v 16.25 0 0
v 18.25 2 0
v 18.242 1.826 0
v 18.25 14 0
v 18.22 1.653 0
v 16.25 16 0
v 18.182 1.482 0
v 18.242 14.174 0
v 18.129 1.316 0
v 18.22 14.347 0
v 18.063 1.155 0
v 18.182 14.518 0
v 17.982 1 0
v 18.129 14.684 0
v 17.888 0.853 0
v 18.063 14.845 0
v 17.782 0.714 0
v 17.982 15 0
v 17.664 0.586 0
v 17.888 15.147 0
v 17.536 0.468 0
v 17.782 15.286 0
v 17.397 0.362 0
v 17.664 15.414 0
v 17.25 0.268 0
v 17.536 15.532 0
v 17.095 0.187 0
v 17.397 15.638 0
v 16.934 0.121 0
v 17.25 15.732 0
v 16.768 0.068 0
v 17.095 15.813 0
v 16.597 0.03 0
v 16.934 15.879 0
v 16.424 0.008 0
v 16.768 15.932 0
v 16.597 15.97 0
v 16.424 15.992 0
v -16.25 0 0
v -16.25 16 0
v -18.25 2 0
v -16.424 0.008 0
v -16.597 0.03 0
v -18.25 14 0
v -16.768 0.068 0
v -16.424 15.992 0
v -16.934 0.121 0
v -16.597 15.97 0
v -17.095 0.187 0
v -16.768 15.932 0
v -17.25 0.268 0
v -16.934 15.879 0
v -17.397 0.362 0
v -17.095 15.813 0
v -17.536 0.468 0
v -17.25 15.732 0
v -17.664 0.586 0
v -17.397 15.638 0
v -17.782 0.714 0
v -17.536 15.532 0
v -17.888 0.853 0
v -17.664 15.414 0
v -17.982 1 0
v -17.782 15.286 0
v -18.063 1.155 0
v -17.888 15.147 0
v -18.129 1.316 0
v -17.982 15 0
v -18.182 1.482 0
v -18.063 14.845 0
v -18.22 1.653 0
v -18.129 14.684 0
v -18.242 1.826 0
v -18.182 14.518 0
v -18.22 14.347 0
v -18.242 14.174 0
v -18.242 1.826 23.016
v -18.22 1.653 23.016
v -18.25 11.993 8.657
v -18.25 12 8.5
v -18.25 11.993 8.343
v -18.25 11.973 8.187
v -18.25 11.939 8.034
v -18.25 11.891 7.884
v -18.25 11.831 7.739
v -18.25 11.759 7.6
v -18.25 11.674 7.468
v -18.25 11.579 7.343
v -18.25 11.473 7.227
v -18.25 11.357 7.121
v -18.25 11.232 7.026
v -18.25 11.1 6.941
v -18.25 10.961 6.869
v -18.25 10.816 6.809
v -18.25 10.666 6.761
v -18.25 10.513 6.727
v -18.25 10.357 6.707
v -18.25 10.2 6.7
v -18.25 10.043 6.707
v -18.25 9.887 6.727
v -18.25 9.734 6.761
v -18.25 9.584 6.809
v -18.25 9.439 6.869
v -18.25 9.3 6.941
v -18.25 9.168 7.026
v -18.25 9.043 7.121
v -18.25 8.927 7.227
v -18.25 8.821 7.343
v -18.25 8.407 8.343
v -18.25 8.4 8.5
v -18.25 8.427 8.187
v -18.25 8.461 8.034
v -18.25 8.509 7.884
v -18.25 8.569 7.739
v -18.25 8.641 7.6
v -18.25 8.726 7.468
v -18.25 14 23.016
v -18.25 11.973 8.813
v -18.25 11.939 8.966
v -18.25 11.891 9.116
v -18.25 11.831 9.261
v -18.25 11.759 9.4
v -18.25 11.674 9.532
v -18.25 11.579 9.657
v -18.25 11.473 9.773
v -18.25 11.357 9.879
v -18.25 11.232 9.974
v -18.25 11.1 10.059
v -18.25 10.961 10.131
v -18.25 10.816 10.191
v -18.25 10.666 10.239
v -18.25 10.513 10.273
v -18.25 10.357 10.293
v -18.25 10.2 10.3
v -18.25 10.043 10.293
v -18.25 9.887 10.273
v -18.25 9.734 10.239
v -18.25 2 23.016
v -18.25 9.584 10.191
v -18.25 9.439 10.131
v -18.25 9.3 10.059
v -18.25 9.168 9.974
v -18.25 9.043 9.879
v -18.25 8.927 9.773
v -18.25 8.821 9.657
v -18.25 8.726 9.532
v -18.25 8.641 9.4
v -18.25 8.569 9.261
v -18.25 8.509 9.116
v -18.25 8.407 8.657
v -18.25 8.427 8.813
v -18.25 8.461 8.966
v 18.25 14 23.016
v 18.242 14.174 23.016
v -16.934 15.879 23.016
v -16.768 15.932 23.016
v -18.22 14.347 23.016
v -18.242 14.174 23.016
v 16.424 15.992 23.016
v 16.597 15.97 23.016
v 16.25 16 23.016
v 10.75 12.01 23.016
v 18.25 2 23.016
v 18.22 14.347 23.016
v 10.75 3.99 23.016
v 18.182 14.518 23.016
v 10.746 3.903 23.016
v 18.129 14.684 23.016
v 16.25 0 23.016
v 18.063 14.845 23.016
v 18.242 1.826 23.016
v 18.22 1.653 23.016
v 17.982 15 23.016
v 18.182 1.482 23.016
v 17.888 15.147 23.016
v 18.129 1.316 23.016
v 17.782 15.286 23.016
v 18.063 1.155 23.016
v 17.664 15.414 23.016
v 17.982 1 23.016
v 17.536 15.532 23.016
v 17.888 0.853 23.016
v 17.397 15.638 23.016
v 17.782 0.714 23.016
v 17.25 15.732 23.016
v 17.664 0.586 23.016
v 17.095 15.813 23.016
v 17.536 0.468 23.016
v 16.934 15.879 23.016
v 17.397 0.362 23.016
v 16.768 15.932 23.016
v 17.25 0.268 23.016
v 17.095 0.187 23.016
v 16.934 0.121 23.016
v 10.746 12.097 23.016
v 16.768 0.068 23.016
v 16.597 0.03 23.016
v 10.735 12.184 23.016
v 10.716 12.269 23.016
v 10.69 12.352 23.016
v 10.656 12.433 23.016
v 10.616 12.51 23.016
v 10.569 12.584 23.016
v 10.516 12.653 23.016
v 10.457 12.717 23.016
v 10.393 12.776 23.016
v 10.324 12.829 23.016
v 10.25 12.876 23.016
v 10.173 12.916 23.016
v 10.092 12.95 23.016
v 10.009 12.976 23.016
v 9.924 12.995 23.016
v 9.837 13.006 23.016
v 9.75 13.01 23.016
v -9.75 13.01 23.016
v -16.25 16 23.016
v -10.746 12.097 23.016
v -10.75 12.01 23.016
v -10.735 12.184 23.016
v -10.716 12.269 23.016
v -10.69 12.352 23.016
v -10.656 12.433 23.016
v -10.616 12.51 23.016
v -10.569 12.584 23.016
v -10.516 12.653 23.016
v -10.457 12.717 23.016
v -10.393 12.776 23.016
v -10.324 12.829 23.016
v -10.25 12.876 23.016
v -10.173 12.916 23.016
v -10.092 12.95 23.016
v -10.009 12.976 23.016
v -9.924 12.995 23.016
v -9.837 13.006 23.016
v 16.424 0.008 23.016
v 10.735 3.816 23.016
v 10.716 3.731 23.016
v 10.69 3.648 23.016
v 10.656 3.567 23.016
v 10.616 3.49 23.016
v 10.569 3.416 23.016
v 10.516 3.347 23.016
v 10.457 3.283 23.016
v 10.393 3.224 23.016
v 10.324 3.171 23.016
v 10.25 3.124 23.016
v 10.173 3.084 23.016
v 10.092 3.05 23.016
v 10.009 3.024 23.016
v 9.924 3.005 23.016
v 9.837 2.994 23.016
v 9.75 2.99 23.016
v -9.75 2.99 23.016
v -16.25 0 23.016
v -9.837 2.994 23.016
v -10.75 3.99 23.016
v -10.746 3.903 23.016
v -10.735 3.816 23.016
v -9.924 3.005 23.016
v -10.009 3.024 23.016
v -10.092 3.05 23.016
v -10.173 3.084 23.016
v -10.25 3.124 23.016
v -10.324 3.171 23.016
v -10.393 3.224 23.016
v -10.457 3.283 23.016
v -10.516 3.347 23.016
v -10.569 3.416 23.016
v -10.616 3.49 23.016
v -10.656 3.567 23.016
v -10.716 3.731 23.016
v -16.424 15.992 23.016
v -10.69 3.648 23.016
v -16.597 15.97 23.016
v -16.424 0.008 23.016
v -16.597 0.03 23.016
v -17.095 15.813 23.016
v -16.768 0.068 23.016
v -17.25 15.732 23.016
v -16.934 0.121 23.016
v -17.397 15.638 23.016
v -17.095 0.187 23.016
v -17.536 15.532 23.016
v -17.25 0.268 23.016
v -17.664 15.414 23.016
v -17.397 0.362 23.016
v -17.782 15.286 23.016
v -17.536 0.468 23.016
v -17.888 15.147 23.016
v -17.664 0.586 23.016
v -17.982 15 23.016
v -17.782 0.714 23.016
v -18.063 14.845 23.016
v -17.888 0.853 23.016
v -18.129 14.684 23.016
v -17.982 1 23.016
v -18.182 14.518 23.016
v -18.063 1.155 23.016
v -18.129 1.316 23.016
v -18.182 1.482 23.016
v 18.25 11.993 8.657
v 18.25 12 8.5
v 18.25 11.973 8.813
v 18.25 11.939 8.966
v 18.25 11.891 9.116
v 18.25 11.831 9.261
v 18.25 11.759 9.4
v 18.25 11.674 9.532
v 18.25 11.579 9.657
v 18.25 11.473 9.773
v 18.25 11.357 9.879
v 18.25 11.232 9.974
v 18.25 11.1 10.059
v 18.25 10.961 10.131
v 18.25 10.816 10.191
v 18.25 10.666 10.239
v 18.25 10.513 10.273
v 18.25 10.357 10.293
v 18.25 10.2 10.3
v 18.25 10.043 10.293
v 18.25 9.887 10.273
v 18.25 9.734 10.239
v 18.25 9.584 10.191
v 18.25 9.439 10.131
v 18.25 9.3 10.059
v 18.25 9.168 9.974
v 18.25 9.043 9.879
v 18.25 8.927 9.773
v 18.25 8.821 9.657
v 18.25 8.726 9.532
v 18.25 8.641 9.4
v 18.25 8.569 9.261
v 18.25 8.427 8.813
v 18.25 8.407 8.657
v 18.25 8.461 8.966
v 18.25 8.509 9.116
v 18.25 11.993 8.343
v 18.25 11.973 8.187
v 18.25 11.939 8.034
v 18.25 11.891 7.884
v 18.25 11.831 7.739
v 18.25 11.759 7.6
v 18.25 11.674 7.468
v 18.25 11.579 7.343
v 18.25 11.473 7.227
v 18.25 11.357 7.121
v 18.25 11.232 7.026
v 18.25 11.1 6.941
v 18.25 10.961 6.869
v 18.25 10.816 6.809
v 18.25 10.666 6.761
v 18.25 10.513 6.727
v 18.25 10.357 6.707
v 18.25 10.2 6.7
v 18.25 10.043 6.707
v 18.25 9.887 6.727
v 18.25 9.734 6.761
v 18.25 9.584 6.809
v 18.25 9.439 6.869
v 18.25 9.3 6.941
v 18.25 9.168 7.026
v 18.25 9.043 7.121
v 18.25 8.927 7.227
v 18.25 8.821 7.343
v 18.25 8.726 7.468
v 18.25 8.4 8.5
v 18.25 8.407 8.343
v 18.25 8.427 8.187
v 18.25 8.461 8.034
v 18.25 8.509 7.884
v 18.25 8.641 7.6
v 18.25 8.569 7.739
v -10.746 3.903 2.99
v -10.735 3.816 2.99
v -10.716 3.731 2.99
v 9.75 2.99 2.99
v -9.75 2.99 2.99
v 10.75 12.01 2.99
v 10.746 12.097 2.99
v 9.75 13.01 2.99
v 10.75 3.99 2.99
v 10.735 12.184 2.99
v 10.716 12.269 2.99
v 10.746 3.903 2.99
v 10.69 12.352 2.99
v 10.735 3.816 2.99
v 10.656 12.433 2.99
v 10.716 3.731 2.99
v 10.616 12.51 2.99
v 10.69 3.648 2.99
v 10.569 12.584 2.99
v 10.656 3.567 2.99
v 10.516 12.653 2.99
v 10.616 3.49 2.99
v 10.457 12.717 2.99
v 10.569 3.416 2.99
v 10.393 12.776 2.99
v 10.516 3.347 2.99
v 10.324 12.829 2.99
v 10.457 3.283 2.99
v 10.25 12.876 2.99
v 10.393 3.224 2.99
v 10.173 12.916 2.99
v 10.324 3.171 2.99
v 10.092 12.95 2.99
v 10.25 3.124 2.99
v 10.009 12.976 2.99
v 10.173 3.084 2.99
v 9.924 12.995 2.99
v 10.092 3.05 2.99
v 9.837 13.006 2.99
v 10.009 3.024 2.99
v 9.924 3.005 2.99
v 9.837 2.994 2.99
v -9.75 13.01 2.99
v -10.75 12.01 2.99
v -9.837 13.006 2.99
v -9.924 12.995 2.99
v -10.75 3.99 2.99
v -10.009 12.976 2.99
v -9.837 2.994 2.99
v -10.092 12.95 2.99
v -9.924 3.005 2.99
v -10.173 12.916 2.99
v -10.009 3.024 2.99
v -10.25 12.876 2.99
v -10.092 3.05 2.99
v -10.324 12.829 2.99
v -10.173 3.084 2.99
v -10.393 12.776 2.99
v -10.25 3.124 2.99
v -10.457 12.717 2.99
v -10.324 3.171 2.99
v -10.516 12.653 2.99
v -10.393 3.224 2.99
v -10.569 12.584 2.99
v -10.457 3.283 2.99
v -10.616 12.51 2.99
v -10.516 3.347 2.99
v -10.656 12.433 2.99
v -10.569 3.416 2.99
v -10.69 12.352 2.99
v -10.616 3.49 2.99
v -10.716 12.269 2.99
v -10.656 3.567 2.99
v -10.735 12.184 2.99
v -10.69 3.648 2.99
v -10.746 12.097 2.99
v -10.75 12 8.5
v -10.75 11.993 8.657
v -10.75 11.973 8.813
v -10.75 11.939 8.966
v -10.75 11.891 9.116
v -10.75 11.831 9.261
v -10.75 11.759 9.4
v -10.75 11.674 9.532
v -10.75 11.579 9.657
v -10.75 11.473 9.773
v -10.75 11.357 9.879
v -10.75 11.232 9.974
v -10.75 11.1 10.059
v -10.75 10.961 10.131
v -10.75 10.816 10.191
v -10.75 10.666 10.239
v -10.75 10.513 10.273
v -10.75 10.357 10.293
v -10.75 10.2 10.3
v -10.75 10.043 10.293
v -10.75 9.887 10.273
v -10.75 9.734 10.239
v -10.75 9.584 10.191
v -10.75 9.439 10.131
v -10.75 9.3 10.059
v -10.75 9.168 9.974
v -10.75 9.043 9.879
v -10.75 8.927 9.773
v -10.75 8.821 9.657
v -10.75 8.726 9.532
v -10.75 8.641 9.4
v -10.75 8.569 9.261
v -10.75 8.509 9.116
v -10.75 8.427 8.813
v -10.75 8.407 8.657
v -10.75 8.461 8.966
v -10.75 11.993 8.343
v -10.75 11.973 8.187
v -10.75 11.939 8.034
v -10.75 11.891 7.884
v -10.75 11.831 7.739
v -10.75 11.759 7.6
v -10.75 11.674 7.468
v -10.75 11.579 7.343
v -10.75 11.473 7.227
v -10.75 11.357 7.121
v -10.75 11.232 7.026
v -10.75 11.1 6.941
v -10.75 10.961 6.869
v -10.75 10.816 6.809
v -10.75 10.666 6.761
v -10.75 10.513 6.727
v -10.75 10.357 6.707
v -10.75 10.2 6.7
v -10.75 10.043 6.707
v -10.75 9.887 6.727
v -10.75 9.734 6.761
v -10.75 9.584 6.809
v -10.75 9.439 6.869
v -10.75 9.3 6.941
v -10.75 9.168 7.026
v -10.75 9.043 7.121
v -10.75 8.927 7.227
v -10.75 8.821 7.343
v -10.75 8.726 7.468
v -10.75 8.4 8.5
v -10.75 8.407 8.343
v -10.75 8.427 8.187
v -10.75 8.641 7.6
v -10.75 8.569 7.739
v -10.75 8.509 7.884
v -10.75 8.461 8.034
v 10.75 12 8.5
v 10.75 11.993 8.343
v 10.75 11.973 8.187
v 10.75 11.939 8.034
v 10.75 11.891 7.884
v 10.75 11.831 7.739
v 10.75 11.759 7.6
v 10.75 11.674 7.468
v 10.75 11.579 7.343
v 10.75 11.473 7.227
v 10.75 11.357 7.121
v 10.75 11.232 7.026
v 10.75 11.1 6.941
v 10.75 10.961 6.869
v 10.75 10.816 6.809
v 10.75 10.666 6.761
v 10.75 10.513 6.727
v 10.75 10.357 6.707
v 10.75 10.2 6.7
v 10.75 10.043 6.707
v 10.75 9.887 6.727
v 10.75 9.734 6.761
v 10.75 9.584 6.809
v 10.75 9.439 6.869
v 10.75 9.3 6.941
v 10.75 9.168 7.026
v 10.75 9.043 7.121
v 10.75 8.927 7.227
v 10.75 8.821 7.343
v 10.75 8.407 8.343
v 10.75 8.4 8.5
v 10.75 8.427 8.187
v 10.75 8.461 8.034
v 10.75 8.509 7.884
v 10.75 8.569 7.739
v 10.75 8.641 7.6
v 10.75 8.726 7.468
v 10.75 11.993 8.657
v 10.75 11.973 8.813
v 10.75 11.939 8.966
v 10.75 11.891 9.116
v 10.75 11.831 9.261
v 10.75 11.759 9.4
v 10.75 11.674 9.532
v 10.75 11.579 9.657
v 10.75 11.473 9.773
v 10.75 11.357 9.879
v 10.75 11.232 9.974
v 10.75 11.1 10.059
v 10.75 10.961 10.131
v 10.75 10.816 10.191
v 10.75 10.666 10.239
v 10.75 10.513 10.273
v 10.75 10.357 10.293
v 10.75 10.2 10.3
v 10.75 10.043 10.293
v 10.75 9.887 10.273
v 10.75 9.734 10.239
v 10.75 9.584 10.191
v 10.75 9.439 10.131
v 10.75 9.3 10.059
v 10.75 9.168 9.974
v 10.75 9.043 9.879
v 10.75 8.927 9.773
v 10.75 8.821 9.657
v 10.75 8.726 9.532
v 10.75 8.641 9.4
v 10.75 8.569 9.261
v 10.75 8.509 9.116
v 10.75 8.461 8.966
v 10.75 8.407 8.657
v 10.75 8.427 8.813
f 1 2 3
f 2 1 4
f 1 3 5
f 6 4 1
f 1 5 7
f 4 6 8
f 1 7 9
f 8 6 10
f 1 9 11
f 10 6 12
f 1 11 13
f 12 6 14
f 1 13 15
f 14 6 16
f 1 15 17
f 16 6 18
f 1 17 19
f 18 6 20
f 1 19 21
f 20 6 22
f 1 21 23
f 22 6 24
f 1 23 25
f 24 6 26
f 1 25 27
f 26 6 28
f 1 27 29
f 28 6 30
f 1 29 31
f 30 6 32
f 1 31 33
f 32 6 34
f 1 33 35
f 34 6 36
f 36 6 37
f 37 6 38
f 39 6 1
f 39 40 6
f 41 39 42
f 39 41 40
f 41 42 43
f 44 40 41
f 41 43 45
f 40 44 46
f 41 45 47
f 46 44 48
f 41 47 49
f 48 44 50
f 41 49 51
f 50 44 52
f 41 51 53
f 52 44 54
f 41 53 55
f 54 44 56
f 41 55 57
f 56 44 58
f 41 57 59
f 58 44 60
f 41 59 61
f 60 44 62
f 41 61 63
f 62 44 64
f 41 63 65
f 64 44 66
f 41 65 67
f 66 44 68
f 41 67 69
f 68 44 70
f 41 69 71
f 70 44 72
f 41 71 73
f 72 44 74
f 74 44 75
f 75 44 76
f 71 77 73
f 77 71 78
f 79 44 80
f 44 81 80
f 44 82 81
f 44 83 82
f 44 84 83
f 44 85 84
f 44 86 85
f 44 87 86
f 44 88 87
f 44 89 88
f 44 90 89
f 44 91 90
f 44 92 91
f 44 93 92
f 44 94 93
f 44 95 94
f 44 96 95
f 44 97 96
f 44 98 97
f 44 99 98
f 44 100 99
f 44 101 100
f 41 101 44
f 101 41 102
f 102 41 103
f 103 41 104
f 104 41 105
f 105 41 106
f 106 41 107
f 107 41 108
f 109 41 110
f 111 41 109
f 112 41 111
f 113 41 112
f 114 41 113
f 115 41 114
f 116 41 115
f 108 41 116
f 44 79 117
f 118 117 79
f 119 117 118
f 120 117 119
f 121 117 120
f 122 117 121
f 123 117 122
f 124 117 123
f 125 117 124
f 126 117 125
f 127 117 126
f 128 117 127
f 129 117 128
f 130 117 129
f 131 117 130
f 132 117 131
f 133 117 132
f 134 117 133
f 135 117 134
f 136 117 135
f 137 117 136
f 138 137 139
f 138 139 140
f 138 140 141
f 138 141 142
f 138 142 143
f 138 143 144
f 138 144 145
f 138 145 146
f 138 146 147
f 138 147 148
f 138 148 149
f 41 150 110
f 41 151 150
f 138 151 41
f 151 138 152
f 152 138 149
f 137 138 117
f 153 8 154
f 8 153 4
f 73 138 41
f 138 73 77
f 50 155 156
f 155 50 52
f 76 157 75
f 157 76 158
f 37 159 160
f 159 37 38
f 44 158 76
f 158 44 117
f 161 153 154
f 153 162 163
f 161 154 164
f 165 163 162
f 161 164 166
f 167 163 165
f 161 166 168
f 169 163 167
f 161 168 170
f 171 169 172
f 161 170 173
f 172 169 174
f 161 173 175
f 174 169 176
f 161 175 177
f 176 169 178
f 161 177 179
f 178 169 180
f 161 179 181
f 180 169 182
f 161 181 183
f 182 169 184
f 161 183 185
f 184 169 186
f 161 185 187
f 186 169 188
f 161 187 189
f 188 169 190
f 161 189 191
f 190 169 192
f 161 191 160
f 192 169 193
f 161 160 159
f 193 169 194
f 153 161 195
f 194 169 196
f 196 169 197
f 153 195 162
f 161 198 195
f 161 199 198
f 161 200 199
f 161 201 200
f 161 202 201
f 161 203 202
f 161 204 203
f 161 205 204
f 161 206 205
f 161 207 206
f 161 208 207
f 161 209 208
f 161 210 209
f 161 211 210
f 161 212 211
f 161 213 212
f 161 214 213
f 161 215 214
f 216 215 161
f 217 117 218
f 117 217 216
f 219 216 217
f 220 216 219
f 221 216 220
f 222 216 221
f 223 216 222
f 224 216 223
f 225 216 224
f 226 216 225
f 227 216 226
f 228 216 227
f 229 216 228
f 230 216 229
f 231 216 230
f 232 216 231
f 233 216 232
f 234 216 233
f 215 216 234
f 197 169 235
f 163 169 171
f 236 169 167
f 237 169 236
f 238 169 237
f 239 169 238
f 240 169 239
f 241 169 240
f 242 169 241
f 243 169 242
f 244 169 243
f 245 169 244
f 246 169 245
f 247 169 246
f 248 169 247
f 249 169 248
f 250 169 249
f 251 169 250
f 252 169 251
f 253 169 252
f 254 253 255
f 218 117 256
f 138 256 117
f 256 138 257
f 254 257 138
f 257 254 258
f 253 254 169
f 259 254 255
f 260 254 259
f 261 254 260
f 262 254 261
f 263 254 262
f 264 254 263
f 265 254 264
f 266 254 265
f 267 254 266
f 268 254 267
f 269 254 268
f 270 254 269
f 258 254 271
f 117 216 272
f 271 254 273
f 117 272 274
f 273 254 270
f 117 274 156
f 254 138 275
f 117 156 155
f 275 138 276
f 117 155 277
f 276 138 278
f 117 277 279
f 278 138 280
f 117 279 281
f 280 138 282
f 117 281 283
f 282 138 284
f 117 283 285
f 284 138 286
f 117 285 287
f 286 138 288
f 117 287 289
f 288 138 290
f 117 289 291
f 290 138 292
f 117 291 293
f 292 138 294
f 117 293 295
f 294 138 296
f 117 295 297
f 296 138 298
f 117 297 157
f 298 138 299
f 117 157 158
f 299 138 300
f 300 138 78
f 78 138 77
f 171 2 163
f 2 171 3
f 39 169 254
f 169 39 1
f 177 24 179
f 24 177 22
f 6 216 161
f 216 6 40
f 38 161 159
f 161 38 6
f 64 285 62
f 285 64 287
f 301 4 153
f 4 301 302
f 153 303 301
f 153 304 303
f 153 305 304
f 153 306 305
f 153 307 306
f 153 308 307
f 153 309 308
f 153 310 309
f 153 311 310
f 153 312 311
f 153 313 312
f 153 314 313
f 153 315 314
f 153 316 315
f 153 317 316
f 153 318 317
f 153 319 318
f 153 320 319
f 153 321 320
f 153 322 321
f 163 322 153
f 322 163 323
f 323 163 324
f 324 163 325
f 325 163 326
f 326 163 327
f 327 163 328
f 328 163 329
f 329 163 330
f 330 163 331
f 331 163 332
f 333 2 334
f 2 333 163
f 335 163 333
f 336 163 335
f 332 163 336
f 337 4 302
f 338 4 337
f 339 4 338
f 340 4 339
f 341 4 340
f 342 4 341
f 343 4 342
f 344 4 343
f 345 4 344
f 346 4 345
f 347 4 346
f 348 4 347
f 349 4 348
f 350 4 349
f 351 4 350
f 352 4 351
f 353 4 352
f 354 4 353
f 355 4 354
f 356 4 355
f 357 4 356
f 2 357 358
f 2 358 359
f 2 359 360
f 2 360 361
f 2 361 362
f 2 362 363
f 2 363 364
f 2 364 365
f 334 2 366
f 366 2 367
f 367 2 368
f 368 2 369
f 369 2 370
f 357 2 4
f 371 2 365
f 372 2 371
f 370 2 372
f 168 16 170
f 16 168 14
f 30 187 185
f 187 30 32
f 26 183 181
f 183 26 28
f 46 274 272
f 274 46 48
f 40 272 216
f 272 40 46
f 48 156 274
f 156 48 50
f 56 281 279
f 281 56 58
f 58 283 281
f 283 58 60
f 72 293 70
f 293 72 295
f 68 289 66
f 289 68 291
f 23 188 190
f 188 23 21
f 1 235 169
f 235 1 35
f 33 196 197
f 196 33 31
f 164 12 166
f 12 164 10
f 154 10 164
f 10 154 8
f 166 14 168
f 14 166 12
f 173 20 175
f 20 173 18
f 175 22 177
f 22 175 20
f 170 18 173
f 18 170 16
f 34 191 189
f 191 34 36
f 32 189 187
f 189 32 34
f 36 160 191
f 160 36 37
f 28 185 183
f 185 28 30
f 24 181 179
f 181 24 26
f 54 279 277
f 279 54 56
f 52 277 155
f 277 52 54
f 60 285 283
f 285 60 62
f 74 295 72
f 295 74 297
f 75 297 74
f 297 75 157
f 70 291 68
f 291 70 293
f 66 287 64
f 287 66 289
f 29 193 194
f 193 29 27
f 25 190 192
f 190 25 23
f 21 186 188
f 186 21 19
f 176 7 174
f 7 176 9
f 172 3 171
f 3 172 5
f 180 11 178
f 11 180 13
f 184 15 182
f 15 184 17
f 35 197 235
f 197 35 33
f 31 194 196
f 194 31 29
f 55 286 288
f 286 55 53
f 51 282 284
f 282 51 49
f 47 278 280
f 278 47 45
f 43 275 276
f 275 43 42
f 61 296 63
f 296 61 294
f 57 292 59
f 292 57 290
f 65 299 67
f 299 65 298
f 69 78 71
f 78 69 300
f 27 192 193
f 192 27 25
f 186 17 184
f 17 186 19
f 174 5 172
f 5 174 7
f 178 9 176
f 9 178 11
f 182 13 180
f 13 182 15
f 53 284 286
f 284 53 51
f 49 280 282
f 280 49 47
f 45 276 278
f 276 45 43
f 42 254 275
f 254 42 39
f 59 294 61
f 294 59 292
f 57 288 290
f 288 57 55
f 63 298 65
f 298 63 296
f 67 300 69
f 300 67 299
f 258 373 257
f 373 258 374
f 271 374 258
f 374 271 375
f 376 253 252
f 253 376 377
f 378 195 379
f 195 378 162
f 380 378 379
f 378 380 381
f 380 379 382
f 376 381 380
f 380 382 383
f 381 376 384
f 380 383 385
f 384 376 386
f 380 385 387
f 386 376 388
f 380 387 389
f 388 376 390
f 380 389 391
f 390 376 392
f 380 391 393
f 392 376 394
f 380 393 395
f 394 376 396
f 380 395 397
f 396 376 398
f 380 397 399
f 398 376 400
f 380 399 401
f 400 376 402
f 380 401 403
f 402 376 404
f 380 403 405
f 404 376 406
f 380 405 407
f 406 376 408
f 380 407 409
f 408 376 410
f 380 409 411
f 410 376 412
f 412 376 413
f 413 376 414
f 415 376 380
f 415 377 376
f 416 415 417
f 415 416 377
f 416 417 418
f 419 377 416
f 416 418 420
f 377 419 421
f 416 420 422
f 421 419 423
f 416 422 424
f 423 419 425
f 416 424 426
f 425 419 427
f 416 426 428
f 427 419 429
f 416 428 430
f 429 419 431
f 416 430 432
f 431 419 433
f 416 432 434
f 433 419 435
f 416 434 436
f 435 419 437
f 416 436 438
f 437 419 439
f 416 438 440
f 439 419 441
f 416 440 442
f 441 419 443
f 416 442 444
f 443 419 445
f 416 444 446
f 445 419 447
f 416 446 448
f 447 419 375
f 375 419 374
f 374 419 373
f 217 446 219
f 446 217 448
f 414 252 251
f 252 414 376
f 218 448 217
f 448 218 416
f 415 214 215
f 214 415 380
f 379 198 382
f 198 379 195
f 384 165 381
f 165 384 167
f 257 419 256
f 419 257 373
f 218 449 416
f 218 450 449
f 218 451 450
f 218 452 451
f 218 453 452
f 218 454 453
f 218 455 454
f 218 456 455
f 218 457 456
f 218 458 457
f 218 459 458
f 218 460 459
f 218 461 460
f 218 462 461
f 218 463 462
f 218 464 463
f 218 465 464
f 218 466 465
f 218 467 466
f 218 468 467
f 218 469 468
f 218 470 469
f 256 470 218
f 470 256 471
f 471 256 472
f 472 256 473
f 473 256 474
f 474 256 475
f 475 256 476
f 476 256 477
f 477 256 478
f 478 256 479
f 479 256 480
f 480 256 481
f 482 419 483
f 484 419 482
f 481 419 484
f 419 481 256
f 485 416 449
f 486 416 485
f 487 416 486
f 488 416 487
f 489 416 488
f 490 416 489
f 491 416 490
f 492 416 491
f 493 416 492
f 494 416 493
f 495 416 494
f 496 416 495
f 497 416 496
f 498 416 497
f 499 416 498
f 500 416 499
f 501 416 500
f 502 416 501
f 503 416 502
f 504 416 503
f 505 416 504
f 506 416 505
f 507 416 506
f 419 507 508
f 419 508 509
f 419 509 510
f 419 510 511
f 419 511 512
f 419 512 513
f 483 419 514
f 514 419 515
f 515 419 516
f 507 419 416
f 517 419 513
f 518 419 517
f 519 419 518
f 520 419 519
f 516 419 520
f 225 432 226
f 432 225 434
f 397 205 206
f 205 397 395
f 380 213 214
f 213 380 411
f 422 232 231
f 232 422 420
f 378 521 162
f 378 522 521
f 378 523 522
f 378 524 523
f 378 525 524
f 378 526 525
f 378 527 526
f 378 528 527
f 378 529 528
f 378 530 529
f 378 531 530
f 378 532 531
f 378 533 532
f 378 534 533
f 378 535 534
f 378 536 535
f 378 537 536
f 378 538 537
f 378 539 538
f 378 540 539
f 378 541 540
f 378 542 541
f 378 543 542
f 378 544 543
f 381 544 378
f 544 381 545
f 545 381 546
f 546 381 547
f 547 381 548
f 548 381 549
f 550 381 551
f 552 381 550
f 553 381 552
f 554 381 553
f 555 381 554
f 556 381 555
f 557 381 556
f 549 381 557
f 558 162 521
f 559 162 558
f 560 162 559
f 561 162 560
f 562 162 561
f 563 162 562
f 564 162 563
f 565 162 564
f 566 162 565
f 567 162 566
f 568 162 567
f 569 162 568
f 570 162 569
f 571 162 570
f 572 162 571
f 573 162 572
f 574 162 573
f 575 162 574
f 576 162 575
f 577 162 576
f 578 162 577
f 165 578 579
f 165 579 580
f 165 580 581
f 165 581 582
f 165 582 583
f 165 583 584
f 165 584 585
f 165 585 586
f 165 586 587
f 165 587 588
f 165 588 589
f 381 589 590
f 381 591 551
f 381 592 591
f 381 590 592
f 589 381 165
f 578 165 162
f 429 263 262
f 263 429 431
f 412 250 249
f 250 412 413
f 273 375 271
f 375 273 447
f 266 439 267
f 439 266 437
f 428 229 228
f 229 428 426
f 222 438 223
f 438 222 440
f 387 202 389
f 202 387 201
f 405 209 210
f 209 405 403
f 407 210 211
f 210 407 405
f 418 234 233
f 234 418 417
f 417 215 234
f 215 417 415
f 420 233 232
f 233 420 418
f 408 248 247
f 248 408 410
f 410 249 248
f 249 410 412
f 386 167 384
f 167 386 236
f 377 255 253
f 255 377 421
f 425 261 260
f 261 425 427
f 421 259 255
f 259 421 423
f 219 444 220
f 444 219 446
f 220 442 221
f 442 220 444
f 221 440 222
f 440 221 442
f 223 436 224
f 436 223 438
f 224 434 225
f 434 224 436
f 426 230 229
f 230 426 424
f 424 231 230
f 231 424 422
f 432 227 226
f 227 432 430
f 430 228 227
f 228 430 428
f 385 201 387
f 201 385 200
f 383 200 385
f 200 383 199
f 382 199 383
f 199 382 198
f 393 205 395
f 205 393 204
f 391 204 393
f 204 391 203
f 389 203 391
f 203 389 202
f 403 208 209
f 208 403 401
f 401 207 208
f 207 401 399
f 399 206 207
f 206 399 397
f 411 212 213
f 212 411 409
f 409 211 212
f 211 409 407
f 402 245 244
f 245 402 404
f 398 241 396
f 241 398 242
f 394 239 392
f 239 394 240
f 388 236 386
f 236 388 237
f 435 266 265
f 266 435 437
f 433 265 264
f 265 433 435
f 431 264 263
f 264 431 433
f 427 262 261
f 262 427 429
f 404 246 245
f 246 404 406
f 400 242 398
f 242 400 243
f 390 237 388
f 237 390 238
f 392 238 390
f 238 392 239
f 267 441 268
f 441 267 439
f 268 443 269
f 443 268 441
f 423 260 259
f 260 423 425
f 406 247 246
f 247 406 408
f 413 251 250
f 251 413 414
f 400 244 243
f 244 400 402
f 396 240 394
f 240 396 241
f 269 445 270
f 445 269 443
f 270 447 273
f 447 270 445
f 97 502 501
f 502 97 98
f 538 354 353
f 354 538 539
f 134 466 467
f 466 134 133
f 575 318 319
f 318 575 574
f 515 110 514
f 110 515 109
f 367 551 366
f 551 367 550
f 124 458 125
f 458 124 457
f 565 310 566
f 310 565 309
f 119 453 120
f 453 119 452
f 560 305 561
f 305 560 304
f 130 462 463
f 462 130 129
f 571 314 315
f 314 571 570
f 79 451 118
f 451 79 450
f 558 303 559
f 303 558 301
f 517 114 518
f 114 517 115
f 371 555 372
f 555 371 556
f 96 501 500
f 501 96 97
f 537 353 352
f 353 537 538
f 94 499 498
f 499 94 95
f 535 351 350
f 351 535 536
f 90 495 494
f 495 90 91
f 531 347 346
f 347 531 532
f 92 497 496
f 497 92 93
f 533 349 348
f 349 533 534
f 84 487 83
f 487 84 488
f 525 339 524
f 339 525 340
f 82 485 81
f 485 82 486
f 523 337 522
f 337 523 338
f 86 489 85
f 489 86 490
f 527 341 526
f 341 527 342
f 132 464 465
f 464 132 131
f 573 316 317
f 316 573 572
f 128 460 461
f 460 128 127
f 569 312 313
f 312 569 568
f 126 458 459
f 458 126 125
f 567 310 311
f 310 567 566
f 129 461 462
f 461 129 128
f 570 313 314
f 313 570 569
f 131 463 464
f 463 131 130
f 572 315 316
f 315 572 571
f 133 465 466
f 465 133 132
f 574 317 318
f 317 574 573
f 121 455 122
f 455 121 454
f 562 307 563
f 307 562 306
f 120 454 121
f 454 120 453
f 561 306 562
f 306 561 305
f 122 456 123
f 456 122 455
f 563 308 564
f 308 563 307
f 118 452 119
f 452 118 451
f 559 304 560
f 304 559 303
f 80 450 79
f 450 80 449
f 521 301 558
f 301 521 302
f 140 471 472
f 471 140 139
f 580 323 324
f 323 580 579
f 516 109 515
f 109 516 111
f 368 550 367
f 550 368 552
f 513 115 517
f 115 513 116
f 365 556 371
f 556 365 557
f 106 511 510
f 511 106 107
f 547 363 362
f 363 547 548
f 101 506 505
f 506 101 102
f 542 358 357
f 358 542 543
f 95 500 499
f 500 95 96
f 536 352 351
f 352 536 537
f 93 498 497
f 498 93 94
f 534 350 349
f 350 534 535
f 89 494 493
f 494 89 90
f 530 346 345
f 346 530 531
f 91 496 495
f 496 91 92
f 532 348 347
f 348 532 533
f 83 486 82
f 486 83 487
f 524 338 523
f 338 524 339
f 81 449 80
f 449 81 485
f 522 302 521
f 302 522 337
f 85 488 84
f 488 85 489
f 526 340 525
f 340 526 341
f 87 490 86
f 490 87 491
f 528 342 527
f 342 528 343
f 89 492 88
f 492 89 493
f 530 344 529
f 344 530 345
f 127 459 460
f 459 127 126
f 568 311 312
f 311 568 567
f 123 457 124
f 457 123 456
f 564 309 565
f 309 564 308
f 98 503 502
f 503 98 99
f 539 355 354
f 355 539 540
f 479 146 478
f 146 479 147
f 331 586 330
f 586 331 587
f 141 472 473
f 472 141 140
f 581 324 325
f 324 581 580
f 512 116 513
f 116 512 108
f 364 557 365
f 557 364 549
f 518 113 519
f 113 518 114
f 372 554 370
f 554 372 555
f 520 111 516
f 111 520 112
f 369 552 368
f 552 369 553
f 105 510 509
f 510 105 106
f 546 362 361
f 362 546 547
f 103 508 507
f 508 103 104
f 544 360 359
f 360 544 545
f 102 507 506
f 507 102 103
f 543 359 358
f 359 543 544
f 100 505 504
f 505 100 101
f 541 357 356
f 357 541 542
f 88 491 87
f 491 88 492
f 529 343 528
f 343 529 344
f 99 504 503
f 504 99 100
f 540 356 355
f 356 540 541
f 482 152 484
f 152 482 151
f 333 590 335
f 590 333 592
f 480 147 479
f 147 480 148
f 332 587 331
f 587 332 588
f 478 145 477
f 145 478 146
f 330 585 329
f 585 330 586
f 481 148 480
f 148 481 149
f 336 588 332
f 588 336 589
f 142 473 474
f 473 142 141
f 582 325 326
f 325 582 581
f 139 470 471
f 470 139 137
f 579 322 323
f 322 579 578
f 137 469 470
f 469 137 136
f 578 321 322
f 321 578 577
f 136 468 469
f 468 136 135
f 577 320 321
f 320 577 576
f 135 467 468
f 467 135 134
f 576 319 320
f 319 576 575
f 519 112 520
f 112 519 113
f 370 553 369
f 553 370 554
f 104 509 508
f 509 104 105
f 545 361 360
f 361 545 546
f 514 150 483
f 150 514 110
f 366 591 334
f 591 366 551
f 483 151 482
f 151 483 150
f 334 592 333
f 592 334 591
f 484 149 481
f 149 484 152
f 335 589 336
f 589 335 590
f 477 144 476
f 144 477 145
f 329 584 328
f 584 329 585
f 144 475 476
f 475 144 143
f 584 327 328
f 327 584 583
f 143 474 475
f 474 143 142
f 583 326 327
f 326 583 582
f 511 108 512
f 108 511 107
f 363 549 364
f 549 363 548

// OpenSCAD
// file: inner_latch_simplified.scad
// Simplified fallback replacement for the W11457841 inner spring-loaded latch insert
// Intended to reuse the existing round carrier and, if possible, the original spring
// Units: millimeters

include <common_params.scad>;

render_variant = "simplified_nominal"; // simplified_nominal, simplified_test_fit, reinforced_simplified, installed_mockup
test_fit_mode = false;
reinforced_mode = false;
mockup_mode = false;

latch_body_width = 19.3;
latch_body_height = 27.8;
latch_body_depth = 8.8;
engagement_face_width = 19.3;
engagement_face_depth = 5.1;
top_hook_width = 8.4;
top_hook_depth = 2.9;
left_feature_width = 7.6;
right_feature_width = 1.9;
spring_contact_width = 3.4;
spring_contact_depth = 2.3;
guide_rail_width = 2.1;
guide_rail_height = 5.3;
pivot_or_capture_diameter = 3.1;
fit_adjustment = 0.0;
reinforcement_thickness = 1.5;
clearance_to_carrier = 0.15;
test_fit_reduction = 0.18;
break_plane_reference = 13.8;
carrier_reference_width = 28.1;

pivot_center_z = 5.4;
pivot_center_y = 6.2;
body_front_y = 0.0;
body_back_y = latch_body_depth;
tip_step_height = 3.2;
tip_relief_depth = 2.4;
upper_core_width = carrier_reference_width - left_feature_width - right_feature_width;

function carrier_adj(test_fit = false) = test_fit ? test_fit_reduction : 0;
function clamp_pos(value, minimum = 0.1) = value < minimum ? minimum : value;

module simplified_insert(test_fit = false, reinforced = false) {
    adj = carrier_adj(test_fit) + fit_adjustment;
    rail_height = clamp_pos(guide_rail_height - adj);
    rail_width = clamp_pos(guide_rail_width - adj / 2);
    pivot_d = clamp_pos(pivot_or_capture_diameter - adj);
    span = clamp_pos(carrier_reference_width - adj);
    upper_width = clamp_pos(upper_core_width - adj / 2);

    difference() {
        union() {
            body_blank(upper_width = upper_width);
            capture_bar(span = span, pivot_d = pivot_d);
            top_hook(upper_width = upper_width, adj = adj);
            asymmetrical_features(upper_width = upper_width);
            spring_tab(adj = adj);
            guide_rails(upper_width = upper_width, rail_width = rail_width, rail_height = rail_height);

            if (reinforced)
                reinforcement_web();
        }

        arm_reliefs();
        tip_center_relief();
        root_clearance();
    }
}

module body_blank(upper_width = 18.6) {
    hull() {
        translate([0, latch_body_depth / 2, 9.2])
            rounded_block([upper_width, latch_body_depth, 8.2], r = 1.4, center = true);

        translate([0, latch_body_depth / 2 - 0.4, 18.0])
            rounded_block([latch_body_width - 0.8, latch_body_depth - 0.6, 10.2], r = 1.2, center = true);

        translate([0, engagement_face_depth / 2 + 0.8, latch_body_height - 3.4])
            rounded_block([engagement_face_width, engagement_face_depth + 1.4, 7.4], r = 1.0, center = true);
    }

    translate([0, engagement_face_depth / 2 + 0.9, latch_body_height - 1.8])
        rounded_block([engagement_face_width, engagement_face_depth + 0.8, tip_step_height], r = 0.8, center = true);
}

module capture_bar(span = 28.1, pivot_d = 3.1) {
    translate([0, pivot_center_y, pivot_center_z])
        lead_in_bar(length = span, d = pivot_d, taper = 0.45);
}

module top_hook(upper_width = 18.6, adj = 0) {
    translate([0, latch_body_depth * 0.35, -1.2])
        rounded_block([top_hook_width, top_hook_depth, 4.4], r = 0.8, center = true);

    translate([0, latch_body_depth * 0.1, -3.0])
        rounded_block([top_hook_width * 0.55, top_hook_depth + 1.0, 2.2], r = 0.5, center = true);

    translate([0, latch_body_depth * 0.25, 1.2])
        rounded_block([upper_width * 0.42, top_hook_depth + 1.8, 2.2], r = 0.7, center = true);
}

module asymmetrical_features(upper_width = 18.6) {
    left_center_x = -upper_width / 2 - left_feature_width / 2 + 0.2;
    right_center_x = upper_width / 2 + right_feature_width / 2 - 0.1;

    translate([left_center_x, 2.9, break_plane_reference + 1.0])
        rounded_block([left_feature_width, 4.0, 8.2], r = 0.8, center = true);

    translate([right_center_x, 2.8, break_plane_reference + 0.8])
        rounded_block([right_feature_width, 3.6, 6.8], r = 0.5, center = true);
}

module spring_tab(adj = 0) {
    translate([spring_contact_width * 0.8, pivot_center_y + spring_contact_depth * 0.35, pivot_center_z - 0.4])
        rounded_block([
            spring_contact_width,
            spring_contact_depth,
            5.0
        ], r = 0.5, center = true);
}

module guide_rails(upper_width = 18.6, rail_width = 2.1, rail_height = 5.3) {
    rail_center_x = upper_width / 2 + rail_width / 2;

    for (x_sign = [-1, 1])
        translate([x_sign * rail_center_x, latch_body_depth * 0.62, 8.4])
            rounded_block([rail_width, 2.8, rail_height], r = 0.4, center = true);
}

module reinforcement_web() {
    hull() {
        translate([0, latch_body_depth - 0.9, break_plane_reference + 0.2])
            rounded_block([engagement_face_width - 4.4, reinforcement_thickness, 5.0], r = 0.6, center = true);

        translate([0, latch_body_depth - 0.4, latch_body_height - 4.6])
            rounded_block([engagement_face_width - 7.0, reinforcement_thickness + 0.6, 7.4], r = 0.5, center = true);
    }
}

module arm_reliefs() {
    translate([0, -0.05, latch_body_height - 6.0])
        extrude_x(engagement_face_width + 1.0, center = true)
            polygon(points = [
                [0, -0.2],
                [tip_relief_depth, -0.2],
                [latch_body_depth + 0.2, 6.2],
                [latch_body_depth + 0.2, 9.6],
                [0, 9.6]
            ]);

    translate([0, latch_body_depth * 0.92, break_plane_reference + 0.8])
        rotate([0, 0, 180])
            extrude_x(engagement_face_width - 5.6, center = true)
                polygon(points = [
                    [0, 0],
                    [1.4, 0],
                    [3.6, 4.2],
                    [0, 4.2]
                ]);
}

module tip_center_relief() {
    translate([0, engagement_face_depth + 0.8, latch_body_height - 2.6])
        rounded_block([5.2, 2.4, 4.6], r = 0.5, center = true);
}

module root_clearance() {
    translate([0, latch_body_depth * 0.5, 4.4])
        rounded_block([10.2, 3.8, 2.6], r = 0.6, center = true);
}

module simplified_mockup() {
    color([0.82, 0.82, 0.82, 0.45])
        mock_carrier_socket(
            latch_span = carrier_reference_width,
            latch_window_width = engagement_face_width + 2.2,
            cavity_depth = latch_body_depth + 1.2,
            cavity_height = latch_body_height * 0.72,
            pivot_d = pivot_or_capture_diameter
        );

    color([0.16, 0.16, 0.16])
        simplified_insert(test_fit = false, reinforced = false);
}

module inner_latch_simplified_variant(variant = "nominal") {
    if (variant == "nominal")
        simplified_insert(test_fit = false, reinforced = false);
    else if (variant == "test_fit")
        simplified_insert(test_fit = true, reinforced = false);
    else if (variant == "reinforced")
        simplified_insert(test_fit = false, reinforced = true);
    else
        simplified_mockup();
}

if (mockup_mode || render_variant == "installed_mockup")
    inner_latch_simplified_variant("mockup");
else if (reinforced_mode || render_variant == "reinforced_simplified")
    inner_latch_simplified_variant("reinforced");
else if (test_fit_mode || render_variant == "simplified_test_fit")
    inner_latch_simplified_variant("test_fit");
else if (render_variant == "simplified_nominal")
    inner_latch_simplified_variant("nominal");
else
    inner_latch_simplified_variant("nominal");
// file: common_params.scad
// Common utilities for the W11457841 inner latch insert project
// Units: millimeters

$fn = 72;
eps = 0.02;

module extrude_x(width, center = true) {
    rotate([0, 90, 0])
        linear_extrude(height = width, center = center, convexity = 10)
            children();
}

module rounded_square_2d(size = [10, 10], r = 1.0) {
    sx = max(size[0], 0.1);
    sy = max(size[1], 0.1);
    rr = min(r, min(sx, sy) / 2 - 0.01);

    if (rr <= 0)
        square([sx, sy], center = true);
    else
        hull()
            for (x_sign = [-1, 1])
            for (y_sign = [-1, 1])
                translate([
                    x_sign * (sx / 2 - rr),
                    y_sign * (sy / 2 - rr)
                ])
                    circle(r = rr);
}

module rounded_block(size = [10, 10, 10], r = 1.0, center = true) {
    z_center = center ? 0 : size[2] / 2;

    translate([0, 0, z_center])
        linear_extrude(height = size[2], center = center, convexity = 10)
            rounded_square_2d([size[0], size[1]], r = r);
}

module cylinder_x(length = 10, d = 3, center = true) {
    rotate([0, 90, 0])
        cylinder(h = length, d = d, center = center);
}

module lead_in_bar(length = 10, d = 3, taper = 0.5) {
    union() {
        cylinder_x(length = max(0.1, length - 2 * taper), d = d, center = true);

        translate([length / 2 - taper / 2, 0, 0])
            rotate([0, 90, 0])
                cylinder(h = taper, d1 = d, d2 = max(0.2, d - 2 * taper), center = true);

        translate([-length / 2 + taper / 2, 0, 0])
            rotate([0, -90, 0])
                cylinder(h = taper, d1 = d, d2 = max(0.2, d - 2 * taper), center = true);
    }
}

module mirror_copy(axis = "x") {
    children();

    if (axis == "x")
        mirror([1, 0, 0]) children();
    else if (axis == "y")
        mirror([0, 1, 0]) children();
    else
        mirror([0, 0, 1]) children();
}

module mock_carrier_socket(
    latch_span = 28.1,
    latch_window_width = 21.0,
    cavity_depth = 10.2,
    cavity_height = 18.0,
    pivot_d = 3.1,
    wall = 3.0,
    base_thickness = 3.0
) {
    outer_width = latch_span + wall * 2 + 2.4;
    outer_depth = cavity_depth + wall * 2;
    outer_height = cavity_height + base_thickness;
    pivot_z = 5.5;

    difference() {
        translate([0, outer_depth / 2, outer_height / 2])
            rounded_block([outer_width, outer_depth, outer_height], r = 2.0, center = true);

        translate([0, wall + cavity_depth / 2, base_thickness + cavity_height / 2])
            rounded_block([latch_window_width, cavity_depth + eps, cavity_height + eps], r = 1.0, center = true);

        translate([0, wall + cavity_depth * 0.72, base_thickness + pivot_z])
            cylinder_x(length = outer_width + eps, d = pivot_d + 0.5, center = true);
    }
}
// main file
// Helper gauge / mock socket for bench fitting the replacement inner latch insert

include <common_params.scad>;
use <inner_latch_simplified.scad>;

render_variant = "gauge"; // gauge or mockup

latch_body_width = 19.3;
latch_body_depth = 8.8;
latch_body_height = 27.8;
engagement_face_width = 19.3;
pivot_or_capture_diameter = 3.1;
carrier_reference_width = 28.1;

module carrier_fit_gauge_body() {
    mock_carrier_socket(
        latch_span = carrier_reference_width,
        latch_window_width = engagement_face_width + 2.2,
        cavity_depth = latch_body_depth + 1.2,
        cavity_height = latch_body_height * 0.72,
        pivot_d = pivot_or_capture_diameter
    );
}

if (render_variant == "mockup") {
    color([0.82, 0.82, 0.82, 0.45])
        carrier_fit_gauge_body();

    color([0.16, 0.16, 0.16])
        inner_latch_simplified_variant("nominal");
} else {
    carrier_fit_gauge_body();
}
